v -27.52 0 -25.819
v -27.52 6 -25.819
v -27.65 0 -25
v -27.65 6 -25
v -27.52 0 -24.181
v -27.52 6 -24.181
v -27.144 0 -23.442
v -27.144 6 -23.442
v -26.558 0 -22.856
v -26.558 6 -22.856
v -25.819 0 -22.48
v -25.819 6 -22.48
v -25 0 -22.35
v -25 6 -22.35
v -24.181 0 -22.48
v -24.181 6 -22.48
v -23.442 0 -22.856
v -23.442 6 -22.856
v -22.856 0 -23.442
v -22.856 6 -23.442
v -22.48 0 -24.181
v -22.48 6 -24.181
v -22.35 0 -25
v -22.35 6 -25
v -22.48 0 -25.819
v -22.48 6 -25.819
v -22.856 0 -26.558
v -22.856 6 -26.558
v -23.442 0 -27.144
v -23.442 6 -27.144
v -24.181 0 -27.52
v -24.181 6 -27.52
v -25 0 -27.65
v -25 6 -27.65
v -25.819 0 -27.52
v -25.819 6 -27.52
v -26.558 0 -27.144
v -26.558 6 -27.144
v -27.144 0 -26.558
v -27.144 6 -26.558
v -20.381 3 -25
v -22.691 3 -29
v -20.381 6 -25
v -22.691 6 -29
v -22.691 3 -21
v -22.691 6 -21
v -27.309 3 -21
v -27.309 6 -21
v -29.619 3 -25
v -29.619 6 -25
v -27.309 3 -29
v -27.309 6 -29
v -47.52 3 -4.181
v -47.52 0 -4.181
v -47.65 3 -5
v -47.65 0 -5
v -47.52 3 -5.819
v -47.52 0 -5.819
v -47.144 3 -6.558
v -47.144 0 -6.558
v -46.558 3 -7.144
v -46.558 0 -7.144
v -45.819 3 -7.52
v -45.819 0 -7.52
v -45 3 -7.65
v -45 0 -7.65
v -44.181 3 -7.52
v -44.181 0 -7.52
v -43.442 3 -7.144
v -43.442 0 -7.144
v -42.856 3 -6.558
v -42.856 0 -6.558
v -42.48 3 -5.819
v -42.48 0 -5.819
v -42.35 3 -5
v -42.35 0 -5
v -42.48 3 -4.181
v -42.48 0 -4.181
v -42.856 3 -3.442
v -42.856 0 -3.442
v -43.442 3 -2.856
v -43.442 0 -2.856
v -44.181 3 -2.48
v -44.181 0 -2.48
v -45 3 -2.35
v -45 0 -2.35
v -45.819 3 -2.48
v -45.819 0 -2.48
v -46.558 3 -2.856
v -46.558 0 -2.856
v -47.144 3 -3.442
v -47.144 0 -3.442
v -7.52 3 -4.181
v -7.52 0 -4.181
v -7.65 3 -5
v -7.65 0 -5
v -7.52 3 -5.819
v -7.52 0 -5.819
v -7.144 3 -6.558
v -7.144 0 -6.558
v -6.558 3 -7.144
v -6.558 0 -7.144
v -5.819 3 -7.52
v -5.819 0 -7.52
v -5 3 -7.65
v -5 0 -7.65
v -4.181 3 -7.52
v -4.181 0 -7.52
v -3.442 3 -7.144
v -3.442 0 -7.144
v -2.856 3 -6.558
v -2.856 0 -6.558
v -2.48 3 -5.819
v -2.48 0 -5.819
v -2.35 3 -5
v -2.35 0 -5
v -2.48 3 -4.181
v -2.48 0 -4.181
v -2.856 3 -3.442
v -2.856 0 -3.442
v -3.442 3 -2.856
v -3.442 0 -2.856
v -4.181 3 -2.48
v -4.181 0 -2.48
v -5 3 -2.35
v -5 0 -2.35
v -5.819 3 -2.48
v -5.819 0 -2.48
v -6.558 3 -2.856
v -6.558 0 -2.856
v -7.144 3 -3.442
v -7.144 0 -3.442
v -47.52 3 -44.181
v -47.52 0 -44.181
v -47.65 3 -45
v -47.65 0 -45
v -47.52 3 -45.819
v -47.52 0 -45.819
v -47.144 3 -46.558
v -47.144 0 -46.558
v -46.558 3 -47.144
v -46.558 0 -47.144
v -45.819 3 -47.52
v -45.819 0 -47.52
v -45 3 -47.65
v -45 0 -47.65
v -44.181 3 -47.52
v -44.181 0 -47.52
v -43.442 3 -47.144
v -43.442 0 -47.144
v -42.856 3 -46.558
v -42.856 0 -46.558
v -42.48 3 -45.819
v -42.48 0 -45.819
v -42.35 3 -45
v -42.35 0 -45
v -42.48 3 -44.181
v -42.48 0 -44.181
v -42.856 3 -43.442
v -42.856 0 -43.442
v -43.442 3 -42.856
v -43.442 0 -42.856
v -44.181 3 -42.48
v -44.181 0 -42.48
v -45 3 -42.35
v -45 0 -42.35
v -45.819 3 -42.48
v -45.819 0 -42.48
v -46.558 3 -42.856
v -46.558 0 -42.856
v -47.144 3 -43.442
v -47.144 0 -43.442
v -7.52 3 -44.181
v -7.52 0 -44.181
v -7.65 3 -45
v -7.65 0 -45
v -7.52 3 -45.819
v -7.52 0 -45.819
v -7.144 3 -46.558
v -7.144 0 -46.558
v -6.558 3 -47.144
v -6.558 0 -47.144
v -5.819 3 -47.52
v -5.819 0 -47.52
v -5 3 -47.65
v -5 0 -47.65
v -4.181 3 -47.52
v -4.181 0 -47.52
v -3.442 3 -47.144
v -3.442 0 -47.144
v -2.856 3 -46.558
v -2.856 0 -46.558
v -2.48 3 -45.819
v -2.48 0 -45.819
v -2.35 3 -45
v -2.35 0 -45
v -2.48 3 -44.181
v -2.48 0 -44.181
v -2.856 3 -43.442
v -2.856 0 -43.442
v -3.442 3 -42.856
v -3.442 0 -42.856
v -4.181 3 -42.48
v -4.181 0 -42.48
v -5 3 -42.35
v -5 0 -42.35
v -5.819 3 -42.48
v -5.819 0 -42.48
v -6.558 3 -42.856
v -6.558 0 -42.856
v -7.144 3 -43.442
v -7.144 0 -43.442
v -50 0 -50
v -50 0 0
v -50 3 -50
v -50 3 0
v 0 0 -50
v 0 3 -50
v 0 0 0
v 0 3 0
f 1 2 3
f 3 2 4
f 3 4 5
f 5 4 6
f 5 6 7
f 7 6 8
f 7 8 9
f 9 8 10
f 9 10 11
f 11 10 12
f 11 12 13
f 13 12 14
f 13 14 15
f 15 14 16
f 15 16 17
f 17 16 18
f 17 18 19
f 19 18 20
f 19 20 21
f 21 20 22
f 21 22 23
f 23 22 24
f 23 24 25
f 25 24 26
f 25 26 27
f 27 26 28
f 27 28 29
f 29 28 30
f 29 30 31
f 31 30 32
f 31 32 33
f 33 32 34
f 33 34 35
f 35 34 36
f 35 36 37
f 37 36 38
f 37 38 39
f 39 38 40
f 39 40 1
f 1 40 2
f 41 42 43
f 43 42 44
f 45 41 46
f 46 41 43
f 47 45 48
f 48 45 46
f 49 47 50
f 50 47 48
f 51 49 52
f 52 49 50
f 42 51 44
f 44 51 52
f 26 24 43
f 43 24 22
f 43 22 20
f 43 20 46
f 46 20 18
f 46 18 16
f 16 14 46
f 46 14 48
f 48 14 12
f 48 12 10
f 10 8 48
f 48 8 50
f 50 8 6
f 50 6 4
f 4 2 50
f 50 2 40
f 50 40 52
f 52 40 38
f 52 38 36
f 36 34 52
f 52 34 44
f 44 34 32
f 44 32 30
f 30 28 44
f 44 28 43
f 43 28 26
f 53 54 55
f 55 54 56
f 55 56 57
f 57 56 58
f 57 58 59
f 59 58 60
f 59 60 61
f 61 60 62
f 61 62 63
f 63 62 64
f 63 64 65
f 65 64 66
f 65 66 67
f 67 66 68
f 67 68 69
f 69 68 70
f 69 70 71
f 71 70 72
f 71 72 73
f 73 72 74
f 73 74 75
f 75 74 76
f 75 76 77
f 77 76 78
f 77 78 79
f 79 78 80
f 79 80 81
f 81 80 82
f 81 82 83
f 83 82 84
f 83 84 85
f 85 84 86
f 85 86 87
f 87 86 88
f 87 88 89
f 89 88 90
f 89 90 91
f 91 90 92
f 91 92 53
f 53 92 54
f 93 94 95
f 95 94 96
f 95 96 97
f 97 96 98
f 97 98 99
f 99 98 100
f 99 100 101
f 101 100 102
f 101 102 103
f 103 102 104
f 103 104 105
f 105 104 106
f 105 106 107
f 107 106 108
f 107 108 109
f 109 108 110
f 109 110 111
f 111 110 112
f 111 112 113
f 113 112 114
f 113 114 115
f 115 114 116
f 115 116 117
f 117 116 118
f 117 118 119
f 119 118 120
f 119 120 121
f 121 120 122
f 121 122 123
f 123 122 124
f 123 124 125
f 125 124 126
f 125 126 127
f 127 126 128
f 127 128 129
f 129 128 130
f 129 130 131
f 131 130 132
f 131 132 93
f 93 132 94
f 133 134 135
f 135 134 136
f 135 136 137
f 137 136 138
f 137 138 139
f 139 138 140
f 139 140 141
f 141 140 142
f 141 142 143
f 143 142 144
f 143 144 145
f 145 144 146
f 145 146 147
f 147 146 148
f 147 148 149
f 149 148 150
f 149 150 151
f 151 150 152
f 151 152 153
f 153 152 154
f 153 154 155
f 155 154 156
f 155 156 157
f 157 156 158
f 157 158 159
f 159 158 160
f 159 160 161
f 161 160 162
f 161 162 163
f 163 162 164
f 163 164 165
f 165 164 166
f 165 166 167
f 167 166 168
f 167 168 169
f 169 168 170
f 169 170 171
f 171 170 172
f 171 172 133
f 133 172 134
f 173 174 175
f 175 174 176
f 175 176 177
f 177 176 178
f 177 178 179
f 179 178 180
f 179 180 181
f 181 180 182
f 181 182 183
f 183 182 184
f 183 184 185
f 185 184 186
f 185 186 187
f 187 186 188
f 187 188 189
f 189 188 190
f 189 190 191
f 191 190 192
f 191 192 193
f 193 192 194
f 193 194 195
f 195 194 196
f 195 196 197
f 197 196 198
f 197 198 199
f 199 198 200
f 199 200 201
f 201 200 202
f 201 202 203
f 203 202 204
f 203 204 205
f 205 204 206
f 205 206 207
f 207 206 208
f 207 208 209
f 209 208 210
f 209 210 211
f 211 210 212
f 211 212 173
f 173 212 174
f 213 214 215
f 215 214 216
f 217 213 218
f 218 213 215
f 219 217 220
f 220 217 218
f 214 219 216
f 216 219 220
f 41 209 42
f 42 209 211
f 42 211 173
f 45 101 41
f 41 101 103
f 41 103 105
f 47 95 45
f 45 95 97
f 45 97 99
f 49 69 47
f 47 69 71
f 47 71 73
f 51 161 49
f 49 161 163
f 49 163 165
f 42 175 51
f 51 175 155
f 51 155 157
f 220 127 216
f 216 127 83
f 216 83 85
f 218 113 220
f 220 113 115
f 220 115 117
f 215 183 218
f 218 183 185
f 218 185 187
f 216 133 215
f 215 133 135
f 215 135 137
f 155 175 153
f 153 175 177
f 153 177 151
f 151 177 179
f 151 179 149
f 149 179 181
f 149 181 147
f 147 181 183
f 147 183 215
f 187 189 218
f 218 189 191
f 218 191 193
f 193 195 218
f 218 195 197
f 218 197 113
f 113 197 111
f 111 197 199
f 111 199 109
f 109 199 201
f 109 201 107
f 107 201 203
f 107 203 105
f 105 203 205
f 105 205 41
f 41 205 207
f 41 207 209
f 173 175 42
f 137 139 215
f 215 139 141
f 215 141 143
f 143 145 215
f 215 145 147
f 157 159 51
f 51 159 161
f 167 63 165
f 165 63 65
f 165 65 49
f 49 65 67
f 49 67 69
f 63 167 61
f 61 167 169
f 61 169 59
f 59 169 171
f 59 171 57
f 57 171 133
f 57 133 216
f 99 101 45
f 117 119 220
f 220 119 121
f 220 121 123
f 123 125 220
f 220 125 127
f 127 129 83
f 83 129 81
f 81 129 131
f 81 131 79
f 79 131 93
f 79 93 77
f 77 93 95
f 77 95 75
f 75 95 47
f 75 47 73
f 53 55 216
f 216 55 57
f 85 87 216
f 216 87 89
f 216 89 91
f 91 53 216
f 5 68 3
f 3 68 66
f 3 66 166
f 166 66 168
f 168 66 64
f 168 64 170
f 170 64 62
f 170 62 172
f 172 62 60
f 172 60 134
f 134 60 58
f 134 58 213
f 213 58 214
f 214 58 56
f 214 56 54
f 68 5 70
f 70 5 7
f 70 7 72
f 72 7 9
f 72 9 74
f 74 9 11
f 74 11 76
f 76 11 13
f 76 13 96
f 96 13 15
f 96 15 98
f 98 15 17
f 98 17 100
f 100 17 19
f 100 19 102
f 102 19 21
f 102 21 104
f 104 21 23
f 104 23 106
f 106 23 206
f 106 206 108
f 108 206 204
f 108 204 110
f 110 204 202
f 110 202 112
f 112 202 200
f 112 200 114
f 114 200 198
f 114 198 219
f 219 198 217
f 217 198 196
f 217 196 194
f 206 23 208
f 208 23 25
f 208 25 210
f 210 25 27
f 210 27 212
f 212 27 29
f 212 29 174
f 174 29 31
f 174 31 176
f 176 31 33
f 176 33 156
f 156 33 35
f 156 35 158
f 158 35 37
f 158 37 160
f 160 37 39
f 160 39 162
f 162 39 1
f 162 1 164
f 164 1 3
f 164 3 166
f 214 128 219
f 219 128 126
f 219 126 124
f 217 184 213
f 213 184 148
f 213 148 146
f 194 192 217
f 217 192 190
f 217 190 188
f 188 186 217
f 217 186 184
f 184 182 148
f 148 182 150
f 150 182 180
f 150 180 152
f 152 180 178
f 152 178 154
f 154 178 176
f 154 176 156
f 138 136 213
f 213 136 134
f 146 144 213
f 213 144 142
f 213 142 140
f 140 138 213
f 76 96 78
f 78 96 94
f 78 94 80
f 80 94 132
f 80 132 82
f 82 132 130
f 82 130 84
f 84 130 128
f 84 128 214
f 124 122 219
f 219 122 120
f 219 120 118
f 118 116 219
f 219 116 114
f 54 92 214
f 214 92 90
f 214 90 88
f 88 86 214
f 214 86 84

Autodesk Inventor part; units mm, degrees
ref_plane "YZ Plane" through (0, 0, 0) normal (1, 0, 0) x (0, 1, 0)
ref_plane "XZ Plane" through (0, 0, 0) normal (0, 1, 0) x (-1, 0, 0)
ref_plane "XY Plane" through (0, 0, 0) normal (0, 0, 1) x (1, 0, 0)
sketch "Sketch1" plane through (0, 0, 0) normal (0, 1, 0) x (-1, 0, 0)
  line L0 (0, 0) -> (50, 0)
  line L1 (50, 0) -> (50, -50)
  line L2 (50, -50) -> (0, -50)
  line L3 (0, -50) -> (0, 0)
  circle A0 centre (45, -5) radius 2.65
  line L4 (50, -25) -> (0, -25)
  line L5 (25, -50) -> (25, 0)
  circle A1 centre (45, -45) radius 2.65
  circle A2 centre (5, -5) radius 2.65
  circle A3 centre (5, -45) radius 2.65
  dimension "d0" = 50
  dimension "d1" = 50
  dimension "d2" = 5
  dimension "d3" = 5
  dimension "d4" = 5.3
extrude "Extrusion1" add sketch "Sketch1" along normal blind 3
sketch "Sketch2" plane through (0, 3, 0) normal (0, 1, 0) x (1, 0, 0)
  line L0 (-20.3812, 25) -> (-22.6906, 21)
  line L1 (-22.6906, 21) -> (-27.3094, 21)
  line L2 (-27.3094, 21) -> (-29.6188, 25)
  line L3 (-29.6188, 25) -> (-27.3094, 29)
  line L4 (-27.3094, 29) -> (-22.6906, 29)
  line L5 (-22.6906, 29) -> (-20.3812, 25)
  line L6 (0, 50) -> (-50, 50) projected
  line L7 (0, 0) -> (0, 50) projected
  point P0 (-25, 25)
  point P1 (-25, 21)
  dimension "d7" = 8
  dimension "d8" = 25
  dimension "d9" = 25
extrude "Extrusion2" add sketch "Sketch2" along normal blind 3
sketch "Sketch3" plane through (0, 6, 0) normal (0, 1, 0) x (1, 0, 0)
  circle A0 centre (-25, 25) radius 2.65
  line L0 (0, 50) -> (-50, 50) projected
  line L1 (0, 0) -> (0, 50) projected
  dimension "d13" = 5.3
  dimension "d14" = 25
  dimension "d15" = 25
extrude "Extrusion3" cut sketch "Sketch3" against normal blind 10
properties part number "BoxLed"
